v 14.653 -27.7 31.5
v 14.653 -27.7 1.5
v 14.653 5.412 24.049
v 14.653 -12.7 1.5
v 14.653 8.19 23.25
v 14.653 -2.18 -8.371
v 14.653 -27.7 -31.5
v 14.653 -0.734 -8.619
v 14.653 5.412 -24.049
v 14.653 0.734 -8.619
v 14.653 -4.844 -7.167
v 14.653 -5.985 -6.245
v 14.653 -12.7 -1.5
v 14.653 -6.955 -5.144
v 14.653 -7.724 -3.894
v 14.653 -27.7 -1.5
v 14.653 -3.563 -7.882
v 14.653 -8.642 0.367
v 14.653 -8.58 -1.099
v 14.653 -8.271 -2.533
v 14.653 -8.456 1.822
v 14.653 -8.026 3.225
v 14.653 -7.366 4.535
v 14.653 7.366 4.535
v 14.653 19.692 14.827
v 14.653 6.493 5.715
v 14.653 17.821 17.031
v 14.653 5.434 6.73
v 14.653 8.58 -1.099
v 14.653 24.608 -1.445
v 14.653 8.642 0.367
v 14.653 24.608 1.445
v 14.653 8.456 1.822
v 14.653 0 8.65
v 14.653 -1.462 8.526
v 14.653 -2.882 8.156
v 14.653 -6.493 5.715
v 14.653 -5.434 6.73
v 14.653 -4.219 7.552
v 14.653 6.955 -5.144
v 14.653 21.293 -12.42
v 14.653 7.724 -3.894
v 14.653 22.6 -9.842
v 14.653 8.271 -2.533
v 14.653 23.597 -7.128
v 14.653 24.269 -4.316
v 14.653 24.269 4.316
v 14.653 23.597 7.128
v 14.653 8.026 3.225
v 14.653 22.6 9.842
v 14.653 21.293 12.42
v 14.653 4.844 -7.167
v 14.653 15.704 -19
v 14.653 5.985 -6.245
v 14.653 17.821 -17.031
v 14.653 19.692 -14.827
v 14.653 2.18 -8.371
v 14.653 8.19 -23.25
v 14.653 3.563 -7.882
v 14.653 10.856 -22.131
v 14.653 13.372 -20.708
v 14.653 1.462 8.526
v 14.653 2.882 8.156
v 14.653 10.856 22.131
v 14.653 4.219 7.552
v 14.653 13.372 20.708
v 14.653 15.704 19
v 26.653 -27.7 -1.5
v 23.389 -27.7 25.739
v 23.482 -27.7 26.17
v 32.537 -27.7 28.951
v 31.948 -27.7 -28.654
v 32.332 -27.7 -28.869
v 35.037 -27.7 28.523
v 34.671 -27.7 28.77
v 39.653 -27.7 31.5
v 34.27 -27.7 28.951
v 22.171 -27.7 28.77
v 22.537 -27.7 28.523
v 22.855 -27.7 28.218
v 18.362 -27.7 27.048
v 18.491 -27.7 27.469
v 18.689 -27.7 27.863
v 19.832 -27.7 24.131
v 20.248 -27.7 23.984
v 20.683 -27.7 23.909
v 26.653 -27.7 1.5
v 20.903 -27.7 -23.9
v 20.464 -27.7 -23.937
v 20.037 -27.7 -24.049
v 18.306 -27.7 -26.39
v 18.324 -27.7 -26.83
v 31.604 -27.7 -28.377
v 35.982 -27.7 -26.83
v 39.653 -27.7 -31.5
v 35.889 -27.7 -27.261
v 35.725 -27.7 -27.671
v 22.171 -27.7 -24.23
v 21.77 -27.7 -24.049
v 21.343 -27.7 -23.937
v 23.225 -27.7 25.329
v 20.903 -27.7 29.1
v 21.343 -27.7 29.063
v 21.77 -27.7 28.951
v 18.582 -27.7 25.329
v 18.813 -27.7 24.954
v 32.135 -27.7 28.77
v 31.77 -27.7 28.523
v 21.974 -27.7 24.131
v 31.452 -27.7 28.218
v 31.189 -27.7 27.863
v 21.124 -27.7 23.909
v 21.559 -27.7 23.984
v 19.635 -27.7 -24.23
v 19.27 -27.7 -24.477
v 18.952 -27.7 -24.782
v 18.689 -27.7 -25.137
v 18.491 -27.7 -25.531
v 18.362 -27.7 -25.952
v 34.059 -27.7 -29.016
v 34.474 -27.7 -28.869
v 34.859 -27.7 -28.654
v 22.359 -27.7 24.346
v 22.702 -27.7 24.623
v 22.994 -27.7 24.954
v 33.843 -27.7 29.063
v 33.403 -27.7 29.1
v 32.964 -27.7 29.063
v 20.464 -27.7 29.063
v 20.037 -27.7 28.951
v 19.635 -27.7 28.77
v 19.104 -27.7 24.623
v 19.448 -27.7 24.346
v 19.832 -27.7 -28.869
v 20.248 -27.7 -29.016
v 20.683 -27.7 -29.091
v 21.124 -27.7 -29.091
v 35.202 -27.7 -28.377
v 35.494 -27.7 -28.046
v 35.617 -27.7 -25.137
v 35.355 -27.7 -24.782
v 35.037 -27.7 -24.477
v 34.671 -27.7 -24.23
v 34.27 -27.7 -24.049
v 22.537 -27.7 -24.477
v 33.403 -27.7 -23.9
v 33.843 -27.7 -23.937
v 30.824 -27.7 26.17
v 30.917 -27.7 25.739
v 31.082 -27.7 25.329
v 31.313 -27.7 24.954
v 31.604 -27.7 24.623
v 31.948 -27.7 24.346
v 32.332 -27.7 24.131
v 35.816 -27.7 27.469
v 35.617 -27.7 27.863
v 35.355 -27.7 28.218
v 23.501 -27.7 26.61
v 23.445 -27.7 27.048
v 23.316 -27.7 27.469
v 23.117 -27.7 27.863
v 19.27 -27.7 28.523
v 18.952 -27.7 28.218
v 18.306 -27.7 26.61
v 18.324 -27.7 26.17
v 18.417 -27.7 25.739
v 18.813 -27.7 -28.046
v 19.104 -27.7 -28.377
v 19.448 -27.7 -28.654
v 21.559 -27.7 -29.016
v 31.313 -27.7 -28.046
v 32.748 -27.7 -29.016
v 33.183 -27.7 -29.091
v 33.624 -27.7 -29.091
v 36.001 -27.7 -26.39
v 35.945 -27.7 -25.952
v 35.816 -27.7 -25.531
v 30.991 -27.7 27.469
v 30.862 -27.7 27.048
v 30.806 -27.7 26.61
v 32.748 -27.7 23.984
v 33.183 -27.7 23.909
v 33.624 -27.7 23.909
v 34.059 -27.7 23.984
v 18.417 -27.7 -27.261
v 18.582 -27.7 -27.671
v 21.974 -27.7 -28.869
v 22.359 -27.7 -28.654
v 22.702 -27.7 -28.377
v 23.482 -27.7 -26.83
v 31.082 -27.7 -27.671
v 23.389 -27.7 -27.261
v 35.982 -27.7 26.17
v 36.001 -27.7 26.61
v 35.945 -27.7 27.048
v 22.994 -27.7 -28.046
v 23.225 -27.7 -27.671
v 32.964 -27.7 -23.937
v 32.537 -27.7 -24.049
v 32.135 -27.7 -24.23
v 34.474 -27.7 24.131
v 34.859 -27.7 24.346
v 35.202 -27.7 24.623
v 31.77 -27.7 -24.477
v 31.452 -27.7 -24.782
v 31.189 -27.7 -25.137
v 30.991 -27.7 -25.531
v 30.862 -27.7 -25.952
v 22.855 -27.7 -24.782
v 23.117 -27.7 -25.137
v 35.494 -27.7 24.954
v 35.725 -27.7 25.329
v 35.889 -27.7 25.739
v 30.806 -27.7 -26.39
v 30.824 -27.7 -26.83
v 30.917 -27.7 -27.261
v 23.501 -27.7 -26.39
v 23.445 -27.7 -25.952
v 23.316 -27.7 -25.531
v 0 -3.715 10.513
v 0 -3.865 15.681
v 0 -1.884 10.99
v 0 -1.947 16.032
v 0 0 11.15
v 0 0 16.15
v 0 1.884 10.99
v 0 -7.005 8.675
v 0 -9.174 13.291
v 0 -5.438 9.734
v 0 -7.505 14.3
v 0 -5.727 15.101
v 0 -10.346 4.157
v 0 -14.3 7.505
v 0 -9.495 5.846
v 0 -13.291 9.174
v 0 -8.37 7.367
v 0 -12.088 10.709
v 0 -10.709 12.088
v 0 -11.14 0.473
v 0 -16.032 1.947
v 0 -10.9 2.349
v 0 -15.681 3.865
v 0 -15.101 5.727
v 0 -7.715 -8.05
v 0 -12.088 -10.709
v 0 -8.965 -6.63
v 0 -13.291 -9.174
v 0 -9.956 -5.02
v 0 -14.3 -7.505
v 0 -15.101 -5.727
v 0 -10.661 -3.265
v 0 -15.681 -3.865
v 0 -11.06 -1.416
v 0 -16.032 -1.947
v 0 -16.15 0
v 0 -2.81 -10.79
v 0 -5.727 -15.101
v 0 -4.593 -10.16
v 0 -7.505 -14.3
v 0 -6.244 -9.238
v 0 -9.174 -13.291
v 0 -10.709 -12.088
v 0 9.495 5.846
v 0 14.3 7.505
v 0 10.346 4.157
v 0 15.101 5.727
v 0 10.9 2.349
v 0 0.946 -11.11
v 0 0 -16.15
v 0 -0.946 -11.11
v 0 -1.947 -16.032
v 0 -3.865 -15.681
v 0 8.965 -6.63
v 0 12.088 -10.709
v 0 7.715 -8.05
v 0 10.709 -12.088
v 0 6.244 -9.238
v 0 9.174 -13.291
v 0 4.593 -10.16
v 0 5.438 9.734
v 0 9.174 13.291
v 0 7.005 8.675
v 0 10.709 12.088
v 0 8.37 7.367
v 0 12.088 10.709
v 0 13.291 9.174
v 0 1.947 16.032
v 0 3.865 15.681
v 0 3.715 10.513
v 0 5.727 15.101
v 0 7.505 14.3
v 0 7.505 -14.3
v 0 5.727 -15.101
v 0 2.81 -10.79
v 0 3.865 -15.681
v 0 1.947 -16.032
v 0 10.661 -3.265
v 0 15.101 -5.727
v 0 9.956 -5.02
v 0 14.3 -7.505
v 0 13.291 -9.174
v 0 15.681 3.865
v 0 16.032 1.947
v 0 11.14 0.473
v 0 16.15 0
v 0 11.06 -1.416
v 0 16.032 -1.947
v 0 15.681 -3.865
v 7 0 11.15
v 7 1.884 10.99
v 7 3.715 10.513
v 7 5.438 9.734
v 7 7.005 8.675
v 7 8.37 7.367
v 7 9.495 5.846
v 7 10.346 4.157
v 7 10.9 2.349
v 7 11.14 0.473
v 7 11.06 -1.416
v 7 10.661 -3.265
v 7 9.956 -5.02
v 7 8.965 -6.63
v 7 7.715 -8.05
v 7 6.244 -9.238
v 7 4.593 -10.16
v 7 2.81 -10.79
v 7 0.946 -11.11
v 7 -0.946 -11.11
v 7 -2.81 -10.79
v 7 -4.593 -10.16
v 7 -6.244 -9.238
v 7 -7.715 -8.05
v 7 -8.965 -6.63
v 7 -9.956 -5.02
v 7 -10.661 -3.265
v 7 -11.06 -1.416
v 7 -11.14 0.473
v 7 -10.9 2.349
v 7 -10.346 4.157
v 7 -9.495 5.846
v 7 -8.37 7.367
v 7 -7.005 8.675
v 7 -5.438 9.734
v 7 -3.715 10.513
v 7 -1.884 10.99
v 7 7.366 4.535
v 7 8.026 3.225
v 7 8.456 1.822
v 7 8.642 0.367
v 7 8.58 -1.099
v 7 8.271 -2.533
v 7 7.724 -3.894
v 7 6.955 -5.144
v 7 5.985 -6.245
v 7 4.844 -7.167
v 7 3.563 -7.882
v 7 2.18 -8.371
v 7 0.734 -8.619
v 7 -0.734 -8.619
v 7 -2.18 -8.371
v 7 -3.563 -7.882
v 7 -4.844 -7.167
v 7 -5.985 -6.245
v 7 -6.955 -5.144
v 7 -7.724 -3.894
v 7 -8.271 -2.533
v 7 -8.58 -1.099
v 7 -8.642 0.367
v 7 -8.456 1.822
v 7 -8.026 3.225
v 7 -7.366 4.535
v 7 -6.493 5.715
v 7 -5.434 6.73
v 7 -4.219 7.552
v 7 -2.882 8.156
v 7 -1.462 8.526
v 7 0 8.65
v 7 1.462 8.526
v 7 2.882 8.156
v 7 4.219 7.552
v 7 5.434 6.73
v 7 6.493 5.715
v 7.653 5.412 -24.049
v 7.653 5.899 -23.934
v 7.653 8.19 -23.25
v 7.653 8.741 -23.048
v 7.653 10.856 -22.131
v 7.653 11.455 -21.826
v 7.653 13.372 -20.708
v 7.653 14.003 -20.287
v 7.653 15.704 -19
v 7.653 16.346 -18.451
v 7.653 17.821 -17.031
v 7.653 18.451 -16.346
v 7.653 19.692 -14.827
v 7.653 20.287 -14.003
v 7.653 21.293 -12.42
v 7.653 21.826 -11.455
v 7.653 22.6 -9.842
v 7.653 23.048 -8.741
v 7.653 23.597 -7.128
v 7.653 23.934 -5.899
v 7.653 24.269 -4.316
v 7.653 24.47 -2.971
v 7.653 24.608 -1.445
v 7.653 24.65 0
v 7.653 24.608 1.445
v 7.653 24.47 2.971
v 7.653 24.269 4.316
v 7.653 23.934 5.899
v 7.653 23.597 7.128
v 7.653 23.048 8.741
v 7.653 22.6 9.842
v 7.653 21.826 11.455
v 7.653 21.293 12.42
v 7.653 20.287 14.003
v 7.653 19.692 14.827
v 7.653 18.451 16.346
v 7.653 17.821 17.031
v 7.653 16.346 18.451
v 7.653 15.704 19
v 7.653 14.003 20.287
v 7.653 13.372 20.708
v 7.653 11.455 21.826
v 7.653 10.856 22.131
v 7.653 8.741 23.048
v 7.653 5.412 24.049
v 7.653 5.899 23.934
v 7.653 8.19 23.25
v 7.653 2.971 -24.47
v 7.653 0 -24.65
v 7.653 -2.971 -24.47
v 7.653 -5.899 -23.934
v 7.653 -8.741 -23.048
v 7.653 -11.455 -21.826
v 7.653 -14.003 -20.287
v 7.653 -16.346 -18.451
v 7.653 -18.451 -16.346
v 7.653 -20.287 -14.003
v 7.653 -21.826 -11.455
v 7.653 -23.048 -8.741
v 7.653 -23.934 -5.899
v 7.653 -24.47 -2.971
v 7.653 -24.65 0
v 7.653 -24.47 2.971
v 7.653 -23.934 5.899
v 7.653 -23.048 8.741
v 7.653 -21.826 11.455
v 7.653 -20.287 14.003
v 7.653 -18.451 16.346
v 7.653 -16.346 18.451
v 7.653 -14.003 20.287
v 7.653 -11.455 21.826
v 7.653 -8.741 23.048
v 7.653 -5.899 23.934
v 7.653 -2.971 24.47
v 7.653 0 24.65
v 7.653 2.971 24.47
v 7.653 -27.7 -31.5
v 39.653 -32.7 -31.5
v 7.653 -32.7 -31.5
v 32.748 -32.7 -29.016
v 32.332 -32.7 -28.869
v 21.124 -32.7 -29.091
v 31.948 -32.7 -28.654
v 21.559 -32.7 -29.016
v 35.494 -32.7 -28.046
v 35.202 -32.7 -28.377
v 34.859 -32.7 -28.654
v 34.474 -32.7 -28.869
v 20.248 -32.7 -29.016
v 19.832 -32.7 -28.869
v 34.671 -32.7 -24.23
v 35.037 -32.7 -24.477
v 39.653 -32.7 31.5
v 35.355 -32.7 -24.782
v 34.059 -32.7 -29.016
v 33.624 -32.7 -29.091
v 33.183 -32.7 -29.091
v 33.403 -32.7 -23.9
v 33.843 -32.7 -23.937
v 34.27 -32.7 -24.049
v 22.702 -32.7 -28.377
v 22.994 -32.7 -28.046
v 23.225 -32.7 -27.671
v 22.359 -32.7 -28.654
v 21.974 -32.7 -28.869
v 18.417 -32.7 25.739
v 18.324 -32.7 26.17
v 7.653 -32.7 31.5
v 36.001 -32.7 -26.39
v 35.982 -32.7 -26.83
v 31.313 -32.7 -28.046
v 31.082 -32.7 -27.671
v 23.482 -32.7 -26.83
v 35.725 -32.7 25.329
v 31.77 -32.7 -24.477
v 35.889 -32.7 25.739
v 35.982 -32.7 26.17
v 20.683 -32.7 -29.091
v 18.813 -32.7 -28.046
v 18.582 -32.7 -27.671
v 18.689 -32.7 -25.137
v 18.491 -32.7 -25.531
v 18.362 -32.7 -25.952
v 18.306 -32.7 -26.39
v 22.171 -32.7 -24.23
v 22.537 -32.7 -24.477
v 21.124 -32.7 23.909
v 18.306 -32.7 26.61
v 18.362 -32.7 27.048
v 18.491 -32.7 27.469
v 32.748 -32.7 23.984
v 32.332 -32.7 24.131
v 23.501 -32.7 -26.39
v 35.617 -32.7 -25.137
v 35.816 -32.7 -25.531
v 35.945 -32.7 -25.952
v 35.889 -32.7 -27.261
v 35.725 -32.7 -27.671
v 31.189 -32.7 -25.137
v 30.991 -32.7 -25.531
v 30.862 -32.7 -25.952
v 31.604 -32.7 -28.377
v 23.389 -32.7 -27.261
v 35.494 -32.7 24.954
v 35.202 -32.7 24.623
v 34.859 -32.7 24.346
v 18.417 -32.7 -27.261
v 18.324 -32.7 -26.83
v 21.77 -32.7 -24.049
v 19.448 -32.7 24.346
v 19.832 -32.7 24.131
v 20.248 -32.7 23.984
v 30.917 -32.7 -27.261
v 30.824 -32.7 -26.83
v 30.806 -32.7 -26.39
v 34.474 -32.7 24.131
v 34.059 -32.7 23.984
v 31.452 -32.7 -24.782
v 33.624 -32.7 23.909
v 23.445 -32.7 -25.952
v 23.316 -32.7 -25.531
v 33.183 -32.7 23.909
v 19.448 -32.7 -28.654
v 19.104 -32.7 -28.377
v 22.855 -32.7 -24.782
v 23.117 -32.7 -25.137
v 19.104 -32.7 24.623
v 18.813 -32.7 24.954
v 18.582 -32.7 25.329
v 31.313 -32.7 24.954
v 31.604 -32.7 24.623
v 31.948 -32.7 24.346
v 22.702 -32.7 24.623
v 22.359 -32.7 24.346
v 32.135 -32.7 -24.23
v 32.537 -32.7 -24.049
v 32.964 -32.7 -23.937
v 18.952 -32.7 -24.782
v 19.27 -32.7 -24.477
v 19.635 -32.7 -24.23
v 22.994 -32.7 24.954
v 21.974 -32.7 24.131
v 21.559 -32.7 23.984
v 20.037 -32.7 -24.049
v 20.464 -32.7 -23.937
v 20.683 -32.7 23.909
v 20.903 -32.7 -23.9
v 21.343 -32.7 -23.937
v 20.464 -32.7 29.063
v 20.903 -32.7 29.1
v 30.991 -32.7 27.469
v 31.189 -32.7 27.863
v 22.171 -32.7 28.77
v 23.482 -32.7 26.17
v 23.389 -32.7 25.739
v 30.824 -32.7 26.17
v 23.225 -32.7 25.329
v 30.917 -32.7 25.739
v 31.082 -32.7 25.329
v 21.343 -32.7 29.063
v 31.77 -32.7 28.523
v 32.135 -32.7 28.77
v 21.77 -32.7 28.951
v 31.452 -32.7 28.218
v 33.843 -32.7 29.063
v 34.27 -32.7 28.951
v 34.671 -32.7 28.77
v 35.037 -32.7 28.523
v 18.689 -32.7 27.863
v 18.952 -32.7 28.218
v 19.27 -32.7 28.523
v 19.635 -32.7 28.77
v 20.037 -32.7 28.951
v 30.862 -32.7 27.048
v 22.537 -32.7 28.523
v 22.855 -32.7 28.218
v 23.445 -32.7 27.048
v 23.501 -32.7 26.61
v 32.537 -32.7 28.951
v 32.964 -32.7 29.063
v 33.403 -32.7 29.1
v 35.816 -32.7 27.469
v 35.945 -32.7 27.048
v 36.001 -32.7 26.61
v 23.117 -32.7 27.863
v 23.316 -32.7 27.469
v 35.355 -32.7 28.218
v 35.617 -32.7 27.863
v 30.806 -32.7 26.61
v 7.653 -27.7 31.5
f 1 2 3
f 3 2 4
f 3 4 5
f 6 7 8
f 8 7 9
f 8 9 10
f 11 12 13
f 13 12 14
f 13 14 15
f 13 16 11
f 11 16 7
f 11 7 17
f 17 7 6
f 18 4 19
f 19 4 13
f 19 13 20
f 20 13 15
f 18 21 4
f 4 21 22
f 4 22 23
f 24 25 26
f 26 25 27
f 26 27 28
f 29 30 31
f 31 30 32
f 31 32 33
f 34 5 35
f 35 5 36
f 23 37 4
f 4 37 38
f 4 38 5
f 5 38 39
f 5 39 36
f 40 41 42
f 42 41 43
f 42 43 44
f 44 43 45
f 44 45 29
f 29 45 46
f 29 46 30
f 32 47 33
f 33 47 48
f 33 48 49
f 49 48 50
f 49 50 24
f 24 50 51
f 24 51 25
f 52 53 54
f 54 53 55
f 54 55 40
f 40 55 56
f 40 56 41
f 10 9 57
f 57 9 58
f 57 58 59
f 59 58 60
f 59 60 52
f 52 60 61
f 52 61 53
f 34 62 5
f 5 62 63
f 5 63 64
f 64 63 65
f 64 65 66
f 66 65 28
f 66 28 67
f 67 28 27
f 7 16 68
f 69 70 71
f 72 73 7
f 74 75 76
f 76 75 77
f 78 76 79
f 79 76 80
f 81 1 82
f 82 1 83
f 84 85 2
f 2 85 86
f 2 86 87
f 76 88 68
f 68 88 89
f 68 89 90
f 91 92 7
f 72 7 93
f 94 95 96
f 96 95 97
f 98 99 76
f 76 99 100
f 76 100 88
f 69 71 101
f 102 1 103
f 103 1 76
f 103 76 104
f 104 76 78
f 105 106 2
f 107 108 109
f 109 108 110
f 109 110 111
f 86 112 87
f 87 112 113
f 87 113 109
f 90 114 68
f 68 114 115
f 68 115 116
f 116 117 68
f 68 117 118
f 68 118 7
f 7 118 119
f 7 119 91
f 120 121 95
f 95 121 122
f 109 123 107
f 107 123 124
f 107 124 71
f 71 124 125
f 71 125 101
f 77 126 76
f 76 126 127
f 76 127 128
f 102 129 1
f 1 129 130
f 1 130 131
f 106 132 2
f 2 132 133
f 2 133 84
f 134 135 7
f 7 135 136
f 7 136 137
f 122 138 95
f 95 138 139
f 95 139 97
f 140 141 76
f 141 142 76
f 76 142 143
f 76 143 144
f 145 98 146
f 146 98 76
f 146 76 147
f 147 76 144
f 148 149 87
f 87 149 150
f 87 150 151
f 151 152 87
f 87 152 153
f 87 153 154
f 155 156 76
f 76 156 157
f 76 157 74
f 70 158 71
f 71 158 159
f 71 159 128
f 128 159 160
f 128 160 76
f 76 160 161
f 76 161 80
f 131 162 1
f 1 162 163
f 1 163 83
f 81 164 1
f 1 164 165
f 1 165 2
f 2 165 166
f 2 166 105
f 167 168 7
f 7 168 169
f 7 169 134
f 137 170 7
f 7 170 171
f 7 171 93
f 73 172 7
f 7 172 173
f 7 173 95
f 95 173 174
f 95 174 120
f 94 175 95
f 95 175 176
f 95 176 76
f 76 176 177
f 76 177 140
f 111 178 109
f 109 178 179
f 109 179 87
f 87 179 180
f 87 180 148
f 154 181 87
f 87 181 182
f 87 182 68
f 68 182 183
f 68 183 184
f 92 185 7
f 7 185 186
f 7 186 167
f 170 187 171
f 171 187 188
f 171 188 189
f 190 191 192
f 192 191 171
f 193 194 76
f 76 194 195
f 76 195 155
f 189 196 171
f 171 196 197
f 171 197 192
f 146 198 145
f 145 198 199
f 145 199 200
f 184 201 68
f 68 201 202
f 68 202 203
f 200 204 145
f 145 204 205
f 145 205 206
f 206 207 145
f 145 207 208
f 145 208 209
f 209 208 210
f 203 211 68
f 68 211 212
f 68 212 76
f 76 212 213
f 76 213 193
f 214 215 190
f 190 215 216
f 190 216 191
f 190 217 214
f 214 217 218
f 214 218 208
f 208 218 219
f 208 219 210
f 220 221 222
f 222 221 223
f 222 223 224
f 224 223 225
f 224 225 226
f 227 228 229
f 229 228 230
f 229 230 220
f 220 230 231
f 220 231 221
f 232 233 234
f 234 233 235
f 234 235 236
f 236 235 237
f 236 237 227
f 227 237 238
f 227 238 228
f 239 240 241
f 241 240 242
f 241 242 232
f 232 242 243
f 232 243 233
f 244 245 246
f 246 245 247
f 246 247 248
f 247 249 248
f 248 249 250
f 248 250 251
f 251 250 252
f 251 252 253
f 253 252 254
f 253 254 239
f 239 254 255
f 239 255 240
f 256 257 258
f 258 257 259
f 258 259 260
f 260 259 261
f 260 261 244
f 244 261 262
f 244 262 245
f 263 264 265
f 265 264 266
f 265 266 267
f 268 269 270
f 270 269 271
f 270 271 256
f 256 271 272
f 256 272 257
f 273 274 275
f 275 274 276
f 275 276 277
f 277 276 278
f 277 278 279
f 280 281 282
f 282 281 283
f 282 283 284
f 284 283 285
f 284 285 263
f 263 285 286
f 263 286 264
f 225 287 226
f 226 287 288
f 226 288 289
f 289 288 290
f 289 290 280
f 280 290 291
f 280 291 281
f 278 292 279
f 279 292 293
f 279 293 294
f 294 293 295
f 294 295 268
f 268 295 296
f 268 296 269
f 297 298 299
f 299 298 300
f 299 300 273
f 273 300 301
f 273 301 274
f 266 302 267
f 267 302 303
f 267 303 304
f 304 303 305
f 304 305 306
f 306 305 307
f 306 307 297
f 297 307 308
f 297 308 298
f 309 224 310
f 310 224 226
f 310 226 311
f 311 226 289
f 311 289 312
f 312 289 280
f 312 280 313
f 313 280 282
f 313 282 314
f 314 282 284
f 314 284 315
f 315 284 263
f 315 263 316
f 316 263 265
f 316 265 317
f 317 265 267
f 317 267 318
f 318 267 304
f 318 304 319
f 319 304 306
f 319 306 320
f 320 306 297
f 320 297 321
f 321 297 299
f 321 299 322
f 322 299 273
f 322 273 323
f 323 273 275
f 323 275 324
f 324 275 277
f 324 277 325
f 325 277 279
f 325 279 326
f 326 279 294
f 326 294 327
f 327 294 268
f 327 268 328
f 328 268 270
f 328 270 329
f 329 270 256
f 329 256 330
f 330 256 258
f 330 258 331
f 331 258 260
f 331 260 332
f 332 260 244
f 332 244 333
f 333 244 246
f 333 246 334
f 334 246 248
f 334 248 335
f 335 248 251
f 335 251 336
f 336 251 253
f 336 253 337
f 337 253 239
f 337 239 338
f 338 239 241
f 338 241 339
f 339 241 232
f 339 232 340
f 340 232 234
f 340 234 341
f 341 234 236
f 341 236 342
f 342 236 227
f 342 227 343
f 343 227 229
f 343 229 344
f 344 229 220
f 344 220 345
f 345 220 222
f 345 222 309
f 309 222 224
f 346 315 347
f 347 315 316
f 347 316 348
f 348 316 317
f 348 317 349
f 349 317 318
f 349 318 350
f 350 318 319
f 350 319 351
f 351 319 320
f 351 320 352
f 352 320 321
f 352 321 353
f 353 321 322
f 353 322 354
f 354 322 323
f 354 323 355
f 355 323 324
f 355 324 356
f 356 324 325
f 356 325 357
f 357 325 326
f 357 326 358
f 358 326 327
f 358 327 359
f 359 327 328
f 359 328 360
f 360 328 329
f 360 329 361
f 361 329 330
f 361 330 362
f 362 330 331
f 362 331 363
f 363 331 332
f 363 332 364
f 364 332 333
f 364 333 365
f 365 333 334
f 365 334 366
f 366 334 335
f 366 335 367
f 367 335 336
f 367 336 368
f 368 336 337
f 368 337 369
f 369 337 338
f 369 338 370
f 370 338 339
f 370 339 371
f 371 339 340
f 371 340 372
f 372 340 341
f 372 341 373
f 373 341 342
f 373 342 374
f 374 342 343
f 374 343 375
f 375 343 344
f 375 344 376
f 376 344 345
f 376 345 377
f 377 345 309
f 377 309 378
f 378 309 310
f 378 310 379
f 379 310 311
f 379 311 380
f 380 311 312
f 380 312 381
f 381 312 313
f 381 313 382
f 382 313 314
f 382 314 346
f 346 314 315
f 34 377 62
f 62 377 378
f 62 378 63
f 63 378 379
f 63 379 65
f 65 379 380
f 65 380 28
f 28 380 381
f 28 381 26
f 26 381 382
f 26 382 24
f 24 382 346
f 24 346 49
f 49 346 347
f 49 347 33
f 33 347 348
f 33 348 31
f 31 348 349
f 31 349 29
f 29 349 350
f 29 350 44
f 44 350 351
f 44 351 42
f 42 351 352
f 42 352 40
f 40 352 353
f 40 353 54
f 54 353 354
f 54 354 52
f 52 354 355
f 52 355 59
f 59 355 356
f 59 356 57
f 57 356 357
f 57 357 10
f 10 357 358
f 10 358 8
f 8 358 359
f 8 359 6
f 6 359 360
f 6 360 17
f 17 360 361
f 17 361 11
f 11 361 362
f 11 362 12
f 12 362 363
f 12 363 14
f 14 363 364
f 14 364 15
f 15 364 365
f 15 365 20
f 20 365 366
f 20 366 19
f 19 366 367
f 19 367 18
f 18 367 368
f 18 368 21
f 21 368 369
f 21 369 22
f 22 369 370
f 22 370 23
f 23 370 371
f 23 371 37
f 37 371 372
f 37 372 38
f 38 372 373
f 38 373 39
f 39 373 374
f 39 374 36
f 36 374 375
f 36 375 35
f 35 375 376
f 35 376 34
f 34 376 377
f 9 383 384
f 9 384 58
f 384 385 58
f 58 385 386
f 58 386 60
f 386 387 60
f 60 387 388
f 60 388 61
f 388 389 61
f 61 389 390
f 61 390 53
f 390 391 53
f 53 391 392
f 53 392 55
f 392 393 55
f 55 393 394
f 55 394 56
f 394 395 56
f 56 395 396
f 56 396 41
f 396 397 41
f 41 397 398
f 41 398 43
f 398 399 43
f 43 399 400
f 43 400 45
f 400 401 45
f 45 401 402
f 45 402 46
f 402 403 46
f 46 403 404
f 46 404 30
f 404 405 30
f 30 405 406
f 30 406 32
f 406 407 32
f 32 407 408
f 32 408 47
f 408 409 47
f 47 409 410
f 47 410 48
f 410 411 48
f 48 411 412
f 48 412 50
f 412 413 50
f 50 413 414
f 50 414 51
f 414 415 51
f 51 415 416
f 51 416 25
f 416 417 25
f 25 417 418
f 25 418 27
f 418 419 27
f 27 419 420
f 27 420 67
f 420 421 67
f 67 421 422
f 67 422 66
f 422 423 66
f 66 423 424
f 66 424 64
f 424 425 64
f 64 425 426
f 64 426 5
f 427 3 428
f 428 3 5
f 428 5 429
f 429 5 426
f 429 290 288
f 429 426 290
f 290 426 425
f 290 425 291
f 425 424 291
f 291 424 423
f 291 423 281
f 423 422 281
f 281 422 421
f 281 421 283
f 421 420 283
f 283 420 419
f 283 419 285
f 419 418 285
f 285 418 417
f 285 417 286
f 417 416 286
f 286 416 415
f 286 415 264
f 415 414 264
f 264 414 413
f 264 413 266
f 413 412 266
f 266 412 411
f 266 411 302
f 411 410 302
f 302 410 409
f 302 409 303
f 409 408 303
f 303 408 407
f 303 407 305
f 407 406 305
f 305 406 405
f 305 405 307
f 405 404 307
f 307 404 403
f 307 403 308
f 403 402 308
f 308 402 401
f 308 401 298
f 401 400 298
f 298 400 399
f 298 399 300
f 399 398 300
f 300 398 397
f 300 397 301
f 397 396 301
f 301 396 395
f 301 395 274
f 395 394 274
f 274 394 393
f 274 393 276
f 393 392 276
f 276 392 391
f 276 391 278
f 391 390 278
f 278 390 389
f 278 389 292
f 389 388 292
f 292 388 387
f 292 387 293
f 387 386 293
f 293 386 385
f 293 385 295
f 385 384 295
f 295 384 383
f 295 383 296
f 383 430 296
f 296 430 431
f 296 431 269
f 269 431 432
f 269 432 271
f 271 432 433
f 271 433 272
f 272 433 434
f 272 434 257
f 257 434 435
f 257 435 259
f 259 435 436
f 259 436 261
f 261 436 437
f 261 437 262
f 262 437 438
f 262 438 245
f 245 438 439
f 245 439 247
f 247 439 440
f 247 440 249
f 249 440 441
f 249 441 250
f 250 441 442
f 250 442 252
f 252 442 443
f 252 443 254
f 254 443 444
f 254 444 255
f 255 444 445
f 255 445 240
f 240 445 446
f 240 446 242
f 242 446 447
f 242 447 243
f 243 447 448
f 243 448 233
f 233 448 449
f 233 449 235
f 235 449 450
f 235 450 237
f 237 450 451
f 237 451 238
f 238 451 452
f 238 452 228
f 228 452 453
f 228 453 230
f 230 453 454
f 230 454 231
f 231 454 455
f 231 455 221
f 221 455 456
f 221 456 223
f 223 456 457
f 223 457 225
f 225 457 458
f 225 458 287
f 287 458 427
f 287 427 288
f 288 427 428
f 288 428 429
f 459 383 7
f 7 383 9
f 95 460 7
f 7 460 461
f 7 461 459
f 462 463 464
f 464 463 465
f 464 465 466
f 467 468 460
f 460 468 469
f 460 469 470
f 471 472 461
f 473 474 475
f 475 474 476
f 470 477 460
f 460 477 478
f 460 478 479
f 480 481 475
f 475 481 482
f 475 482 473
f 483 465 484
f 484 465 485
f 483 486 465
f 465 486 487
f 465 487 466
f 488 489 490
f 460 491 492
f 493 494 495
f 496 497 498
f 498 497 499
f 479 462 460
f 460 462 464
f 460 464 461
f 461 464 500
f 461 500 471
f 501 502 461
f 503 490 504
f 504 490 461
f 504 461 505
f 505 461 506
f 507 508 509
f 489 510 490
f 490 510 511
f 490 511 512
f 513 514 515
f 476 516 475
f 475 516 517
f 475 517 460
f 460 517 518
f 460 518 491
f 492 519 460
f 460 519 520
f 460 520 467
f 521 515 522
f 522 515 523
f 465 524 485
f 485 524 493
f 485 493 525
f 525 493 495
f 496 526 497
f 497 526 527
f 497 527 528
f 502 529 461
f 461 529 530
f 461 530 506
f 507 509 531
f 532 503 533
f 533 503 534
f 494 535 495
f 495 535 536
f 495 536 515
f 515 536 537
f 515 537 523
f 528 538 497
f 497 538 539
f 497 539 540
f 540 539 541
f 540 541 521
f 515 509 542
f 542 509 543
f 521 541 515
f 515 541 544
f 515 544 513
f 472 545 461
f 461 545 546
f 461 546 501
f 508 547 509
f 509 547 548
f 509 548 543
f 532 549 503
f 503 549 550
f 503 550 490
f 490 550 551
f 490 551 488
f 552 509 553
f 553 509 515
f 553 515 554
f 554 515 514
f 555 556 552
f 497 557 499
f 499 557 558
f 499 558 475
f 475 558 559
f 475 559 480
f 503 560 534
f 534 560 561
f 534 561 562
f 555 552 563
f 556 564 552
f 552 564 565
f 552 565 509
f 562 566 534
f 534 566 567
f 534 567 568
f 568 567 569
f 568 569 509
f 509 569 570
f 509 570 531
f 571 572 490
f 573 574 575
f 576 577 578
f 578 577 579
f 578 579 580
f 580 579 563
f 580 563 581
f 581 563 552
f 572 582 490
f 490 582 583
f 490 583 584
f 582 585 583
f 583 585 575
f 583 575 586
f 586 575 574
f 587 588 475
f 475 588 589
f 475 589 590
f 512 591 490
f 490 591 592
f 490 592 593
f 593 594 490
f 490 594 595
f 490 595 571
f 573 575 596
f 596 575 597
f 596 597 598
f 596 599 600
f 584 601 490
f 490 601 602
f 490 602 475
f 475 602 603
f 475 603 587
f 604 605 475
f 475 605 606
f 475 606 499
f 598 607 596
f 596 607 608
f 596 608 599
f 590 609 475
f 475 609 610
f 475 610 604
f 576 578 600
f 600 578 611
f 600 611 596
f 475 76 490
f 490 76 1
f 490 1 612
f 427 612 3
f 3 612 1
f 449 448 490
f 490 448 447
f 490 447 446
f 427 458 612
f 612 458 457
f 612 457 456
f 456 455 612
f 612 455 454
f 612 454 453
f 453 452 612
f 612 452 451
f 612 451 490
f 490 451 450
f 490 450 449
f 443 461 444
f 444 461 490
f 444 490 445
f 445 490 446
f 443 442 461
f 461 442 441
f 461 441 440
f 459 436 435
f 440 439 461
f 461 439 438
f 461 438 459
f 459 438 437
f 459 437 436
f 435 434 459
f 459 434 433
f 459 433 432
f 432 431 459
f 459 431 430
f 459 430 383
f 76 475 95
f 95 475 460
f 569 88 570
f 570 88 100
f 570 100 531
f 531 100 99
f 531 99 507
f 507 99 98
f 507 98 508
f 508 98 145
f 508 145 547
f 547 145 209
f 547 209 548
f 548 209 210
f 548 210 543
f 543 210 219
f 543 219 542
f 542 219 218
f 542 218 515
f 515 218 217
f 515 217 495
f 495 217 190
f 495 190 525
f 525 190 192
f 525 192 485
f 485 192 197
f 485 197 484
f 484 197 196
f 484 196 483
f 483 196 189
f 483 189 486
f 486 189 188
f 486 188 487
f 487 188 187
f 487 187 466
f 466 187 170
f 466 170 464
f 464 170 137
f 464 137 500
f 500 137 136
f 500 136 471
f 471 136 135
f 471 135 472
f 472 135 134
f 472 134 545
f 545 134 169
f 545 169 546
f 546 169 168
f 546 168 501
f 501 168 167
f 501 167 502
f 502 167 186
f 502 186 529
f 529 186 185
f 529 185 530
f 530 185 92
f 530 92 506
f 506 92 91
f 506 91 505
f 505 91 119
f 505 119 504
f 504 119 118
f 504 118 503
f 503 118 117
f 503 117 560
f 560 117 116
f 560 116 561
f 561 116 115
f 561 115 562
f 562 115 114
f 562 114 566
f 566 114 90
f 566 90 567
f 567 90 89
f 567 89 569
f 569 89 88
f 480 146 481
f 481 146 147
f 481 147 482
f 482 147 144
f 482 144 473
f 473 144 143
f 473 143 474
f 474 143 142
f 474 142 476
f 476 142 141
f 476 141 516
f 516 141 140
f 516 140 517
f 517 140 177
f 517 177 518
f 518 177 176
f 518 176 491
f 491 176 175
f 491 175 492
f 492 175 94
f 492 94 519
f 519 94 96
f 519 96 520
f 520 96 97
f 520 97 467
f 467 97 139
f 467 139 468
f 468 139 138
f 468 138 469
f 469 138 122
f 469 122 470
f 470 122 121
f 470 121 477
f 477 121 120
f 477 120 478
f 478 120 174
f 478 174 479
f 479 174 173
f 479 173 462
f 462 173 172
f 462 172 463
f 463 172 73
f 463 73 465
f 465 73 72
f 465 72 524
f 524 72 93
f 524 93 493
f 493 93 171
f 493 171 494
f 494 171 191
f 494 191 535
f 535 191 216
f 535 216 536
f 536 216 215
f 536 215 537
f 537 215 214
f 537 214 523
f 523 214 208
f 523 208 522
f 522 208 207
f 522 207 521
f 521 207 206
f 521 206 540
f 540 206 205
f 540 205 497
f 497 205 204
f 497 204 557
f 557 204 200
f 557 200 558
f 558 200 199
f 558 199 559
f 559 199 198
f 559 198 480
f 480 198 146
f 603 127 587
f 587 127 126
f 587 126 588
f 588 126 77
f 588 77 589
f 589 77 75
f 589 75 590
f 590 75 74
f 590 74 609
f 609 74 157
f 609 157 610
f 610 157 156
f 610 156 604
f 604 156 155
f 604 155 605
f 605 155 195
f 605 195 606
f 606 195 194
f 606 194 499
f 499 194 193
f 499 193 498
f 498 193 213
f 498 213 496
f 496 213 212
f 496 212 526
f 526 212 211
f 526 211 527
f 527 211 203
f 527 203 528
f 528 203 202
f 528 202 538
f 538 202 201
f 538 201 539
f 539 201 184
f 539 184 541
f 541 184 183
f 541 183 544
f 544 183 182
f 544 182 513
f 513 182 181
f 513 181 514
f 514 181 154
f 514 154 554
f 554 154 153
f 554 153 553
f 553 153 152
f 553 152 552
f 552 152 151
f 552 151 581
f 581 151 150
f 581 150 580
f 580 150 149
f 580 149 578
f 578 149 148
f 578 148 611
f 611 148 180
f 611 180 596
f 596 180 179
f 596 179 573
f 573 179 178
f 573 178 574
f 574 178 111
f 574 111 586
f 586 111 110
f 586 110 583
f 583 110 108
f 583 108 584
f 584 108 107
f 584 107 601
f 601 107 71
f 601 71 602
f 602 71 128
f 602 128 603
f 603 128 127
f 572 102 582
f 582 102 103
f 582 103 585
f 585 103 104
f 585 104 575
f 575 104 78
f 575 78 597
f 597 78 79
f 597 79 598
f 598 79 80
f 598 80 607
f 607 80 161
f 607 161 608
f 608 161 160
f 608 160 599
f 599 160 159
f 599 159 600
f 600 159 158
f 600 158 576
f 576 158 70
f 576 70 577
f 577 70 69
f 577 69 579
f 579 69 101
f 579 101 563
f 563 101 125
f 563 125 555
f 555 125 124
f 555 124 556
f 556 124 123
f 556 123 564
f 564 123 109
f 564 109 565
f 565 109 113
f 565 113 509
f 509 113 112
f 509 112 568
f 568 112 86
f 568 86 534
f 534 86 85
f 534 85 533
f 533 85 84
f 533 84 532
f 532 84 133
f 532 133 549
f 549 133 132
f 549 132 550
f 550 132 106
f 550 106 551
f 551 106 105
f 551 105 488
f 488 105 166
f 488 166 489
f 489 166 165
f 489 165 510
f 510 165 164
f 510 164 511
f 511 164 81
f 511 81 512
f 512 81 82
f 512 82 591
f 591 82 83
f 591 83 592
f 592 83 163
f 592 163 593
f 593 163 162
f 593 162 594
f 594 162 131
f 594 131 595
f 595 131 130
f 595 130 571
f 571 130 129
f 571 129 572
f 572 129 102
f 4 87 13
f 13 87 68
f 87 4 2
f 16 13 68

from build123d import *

# Parameters (mm, degrees)
BOSS_EXTRUDE1_START = -7
BOSS_EXTRUDE1_DEPTH = 7
SKETCH6_W           = 63
SKETCH6_H           = 5
BOSS_EXTRUDE2_DEPTH = 25
SKETCH7_R           = 2.6
CUT_EXTRUDE1_DEPTH  = 73.836579806
BOSS_EXTRUDE3_DEPTH = 1.5


with BuildPart() as part:
    # Sketch4 → Revolve1 (revolve)
    with BuildSketch(Plane.XY, mode=Mode.PRIVATE) as revolve1_sk:
        Polygon((0, 11.15), (7, 11.15), (7, 8.65), (14.653434377, 8.65), (14.653434377, 24.65), (7.653434377, 24.65), (0, 16.15), align=None)
    revolve(revolve1_sk.sketch.rotate(Axis((0, 0, 0), (1, 0, 0)), 90), axis=Axis((0, 0, 0), (1, 0, 0)))

    # Sketch5 → Boss-Extrude1 (add)
    with BuildSketch(Plane(origin=(14.653434377, 0, 0), x_dir=(0, 0, -1), z_dir=(1, 0, 0)).offset(BOSS_EXTRUDE1_START)):
        with BuildLine():
            Line((-31.5, -32.7), (31.5, -32.7))
            Line((31.5, -32.7), (31.5, -27.7))
            Line((31.5, -27.7), (24.048586045, 5.411839727))
            ThreePointArc((24.048586045, 5.411839727), (0, -24.65), (-24.048586045, 5.411839727))
            Line((-24.048586045, 5.411839727), (-31.5, -27.7))
            Line((-31.5, -27.7), (-31.5, -32.7))
        make_face()
    extrude(amount=BOSS_EXTRUDE1_DEPTH)

    # Sketch6 → Boss-Extrude2 (add)
    with BuildSketch(Plane(origin=(14.653434377, 0, 0), x_dir=(0, 0, -1), z_dir=(1, 0, 0))):
        with Locations((0, -30.2)):
            Rectangle(SKETCH6_W, SKETCH6_H)
    extrude(amount=BOSS_EXTRUDE2_DEPTH)

    # Sketch7 → Cut-Extrude1 (cut, through all)
    with BuildSketch(Plane(origin=(0, -27.7, 0), x_dir=(1, 0, 0), z_dir=(0, 1, 0))):
        with Locations(Location((20.903434377, 26.5, 0), (0, 0, 270))):
            Circle(SKETCH7_R)
        with Locations(Location((33.403434377, 26.5, 0), (0, 0, 270))):
            Circle(SKETCH7_R)
        with Locations(Location((33.403434377, -26.5, 0), (0, 0, 270))):
            Circle(SKETCH7_R)
        with Locations(Location((20.903434377, -26.5, 0), (0, 0, 270))):
            Circle(SKETCH7_R)
    extrude(amount=-CUT_EXTRUDE1_DEPTH, mode=Mode.SUBTRACT)

    # Sketch8 → Boss-Extrude3 (add, symmetric)
    with BuildSketch(Plane.XY):
        Polygon((26.653434377, -27.7), (14.653434377, -12.7), (14.653434377, -27.7), align=None)
    extrude(amount=BOSS_EXTRUDE3_DEPTH, both=True)


solid = part.part
